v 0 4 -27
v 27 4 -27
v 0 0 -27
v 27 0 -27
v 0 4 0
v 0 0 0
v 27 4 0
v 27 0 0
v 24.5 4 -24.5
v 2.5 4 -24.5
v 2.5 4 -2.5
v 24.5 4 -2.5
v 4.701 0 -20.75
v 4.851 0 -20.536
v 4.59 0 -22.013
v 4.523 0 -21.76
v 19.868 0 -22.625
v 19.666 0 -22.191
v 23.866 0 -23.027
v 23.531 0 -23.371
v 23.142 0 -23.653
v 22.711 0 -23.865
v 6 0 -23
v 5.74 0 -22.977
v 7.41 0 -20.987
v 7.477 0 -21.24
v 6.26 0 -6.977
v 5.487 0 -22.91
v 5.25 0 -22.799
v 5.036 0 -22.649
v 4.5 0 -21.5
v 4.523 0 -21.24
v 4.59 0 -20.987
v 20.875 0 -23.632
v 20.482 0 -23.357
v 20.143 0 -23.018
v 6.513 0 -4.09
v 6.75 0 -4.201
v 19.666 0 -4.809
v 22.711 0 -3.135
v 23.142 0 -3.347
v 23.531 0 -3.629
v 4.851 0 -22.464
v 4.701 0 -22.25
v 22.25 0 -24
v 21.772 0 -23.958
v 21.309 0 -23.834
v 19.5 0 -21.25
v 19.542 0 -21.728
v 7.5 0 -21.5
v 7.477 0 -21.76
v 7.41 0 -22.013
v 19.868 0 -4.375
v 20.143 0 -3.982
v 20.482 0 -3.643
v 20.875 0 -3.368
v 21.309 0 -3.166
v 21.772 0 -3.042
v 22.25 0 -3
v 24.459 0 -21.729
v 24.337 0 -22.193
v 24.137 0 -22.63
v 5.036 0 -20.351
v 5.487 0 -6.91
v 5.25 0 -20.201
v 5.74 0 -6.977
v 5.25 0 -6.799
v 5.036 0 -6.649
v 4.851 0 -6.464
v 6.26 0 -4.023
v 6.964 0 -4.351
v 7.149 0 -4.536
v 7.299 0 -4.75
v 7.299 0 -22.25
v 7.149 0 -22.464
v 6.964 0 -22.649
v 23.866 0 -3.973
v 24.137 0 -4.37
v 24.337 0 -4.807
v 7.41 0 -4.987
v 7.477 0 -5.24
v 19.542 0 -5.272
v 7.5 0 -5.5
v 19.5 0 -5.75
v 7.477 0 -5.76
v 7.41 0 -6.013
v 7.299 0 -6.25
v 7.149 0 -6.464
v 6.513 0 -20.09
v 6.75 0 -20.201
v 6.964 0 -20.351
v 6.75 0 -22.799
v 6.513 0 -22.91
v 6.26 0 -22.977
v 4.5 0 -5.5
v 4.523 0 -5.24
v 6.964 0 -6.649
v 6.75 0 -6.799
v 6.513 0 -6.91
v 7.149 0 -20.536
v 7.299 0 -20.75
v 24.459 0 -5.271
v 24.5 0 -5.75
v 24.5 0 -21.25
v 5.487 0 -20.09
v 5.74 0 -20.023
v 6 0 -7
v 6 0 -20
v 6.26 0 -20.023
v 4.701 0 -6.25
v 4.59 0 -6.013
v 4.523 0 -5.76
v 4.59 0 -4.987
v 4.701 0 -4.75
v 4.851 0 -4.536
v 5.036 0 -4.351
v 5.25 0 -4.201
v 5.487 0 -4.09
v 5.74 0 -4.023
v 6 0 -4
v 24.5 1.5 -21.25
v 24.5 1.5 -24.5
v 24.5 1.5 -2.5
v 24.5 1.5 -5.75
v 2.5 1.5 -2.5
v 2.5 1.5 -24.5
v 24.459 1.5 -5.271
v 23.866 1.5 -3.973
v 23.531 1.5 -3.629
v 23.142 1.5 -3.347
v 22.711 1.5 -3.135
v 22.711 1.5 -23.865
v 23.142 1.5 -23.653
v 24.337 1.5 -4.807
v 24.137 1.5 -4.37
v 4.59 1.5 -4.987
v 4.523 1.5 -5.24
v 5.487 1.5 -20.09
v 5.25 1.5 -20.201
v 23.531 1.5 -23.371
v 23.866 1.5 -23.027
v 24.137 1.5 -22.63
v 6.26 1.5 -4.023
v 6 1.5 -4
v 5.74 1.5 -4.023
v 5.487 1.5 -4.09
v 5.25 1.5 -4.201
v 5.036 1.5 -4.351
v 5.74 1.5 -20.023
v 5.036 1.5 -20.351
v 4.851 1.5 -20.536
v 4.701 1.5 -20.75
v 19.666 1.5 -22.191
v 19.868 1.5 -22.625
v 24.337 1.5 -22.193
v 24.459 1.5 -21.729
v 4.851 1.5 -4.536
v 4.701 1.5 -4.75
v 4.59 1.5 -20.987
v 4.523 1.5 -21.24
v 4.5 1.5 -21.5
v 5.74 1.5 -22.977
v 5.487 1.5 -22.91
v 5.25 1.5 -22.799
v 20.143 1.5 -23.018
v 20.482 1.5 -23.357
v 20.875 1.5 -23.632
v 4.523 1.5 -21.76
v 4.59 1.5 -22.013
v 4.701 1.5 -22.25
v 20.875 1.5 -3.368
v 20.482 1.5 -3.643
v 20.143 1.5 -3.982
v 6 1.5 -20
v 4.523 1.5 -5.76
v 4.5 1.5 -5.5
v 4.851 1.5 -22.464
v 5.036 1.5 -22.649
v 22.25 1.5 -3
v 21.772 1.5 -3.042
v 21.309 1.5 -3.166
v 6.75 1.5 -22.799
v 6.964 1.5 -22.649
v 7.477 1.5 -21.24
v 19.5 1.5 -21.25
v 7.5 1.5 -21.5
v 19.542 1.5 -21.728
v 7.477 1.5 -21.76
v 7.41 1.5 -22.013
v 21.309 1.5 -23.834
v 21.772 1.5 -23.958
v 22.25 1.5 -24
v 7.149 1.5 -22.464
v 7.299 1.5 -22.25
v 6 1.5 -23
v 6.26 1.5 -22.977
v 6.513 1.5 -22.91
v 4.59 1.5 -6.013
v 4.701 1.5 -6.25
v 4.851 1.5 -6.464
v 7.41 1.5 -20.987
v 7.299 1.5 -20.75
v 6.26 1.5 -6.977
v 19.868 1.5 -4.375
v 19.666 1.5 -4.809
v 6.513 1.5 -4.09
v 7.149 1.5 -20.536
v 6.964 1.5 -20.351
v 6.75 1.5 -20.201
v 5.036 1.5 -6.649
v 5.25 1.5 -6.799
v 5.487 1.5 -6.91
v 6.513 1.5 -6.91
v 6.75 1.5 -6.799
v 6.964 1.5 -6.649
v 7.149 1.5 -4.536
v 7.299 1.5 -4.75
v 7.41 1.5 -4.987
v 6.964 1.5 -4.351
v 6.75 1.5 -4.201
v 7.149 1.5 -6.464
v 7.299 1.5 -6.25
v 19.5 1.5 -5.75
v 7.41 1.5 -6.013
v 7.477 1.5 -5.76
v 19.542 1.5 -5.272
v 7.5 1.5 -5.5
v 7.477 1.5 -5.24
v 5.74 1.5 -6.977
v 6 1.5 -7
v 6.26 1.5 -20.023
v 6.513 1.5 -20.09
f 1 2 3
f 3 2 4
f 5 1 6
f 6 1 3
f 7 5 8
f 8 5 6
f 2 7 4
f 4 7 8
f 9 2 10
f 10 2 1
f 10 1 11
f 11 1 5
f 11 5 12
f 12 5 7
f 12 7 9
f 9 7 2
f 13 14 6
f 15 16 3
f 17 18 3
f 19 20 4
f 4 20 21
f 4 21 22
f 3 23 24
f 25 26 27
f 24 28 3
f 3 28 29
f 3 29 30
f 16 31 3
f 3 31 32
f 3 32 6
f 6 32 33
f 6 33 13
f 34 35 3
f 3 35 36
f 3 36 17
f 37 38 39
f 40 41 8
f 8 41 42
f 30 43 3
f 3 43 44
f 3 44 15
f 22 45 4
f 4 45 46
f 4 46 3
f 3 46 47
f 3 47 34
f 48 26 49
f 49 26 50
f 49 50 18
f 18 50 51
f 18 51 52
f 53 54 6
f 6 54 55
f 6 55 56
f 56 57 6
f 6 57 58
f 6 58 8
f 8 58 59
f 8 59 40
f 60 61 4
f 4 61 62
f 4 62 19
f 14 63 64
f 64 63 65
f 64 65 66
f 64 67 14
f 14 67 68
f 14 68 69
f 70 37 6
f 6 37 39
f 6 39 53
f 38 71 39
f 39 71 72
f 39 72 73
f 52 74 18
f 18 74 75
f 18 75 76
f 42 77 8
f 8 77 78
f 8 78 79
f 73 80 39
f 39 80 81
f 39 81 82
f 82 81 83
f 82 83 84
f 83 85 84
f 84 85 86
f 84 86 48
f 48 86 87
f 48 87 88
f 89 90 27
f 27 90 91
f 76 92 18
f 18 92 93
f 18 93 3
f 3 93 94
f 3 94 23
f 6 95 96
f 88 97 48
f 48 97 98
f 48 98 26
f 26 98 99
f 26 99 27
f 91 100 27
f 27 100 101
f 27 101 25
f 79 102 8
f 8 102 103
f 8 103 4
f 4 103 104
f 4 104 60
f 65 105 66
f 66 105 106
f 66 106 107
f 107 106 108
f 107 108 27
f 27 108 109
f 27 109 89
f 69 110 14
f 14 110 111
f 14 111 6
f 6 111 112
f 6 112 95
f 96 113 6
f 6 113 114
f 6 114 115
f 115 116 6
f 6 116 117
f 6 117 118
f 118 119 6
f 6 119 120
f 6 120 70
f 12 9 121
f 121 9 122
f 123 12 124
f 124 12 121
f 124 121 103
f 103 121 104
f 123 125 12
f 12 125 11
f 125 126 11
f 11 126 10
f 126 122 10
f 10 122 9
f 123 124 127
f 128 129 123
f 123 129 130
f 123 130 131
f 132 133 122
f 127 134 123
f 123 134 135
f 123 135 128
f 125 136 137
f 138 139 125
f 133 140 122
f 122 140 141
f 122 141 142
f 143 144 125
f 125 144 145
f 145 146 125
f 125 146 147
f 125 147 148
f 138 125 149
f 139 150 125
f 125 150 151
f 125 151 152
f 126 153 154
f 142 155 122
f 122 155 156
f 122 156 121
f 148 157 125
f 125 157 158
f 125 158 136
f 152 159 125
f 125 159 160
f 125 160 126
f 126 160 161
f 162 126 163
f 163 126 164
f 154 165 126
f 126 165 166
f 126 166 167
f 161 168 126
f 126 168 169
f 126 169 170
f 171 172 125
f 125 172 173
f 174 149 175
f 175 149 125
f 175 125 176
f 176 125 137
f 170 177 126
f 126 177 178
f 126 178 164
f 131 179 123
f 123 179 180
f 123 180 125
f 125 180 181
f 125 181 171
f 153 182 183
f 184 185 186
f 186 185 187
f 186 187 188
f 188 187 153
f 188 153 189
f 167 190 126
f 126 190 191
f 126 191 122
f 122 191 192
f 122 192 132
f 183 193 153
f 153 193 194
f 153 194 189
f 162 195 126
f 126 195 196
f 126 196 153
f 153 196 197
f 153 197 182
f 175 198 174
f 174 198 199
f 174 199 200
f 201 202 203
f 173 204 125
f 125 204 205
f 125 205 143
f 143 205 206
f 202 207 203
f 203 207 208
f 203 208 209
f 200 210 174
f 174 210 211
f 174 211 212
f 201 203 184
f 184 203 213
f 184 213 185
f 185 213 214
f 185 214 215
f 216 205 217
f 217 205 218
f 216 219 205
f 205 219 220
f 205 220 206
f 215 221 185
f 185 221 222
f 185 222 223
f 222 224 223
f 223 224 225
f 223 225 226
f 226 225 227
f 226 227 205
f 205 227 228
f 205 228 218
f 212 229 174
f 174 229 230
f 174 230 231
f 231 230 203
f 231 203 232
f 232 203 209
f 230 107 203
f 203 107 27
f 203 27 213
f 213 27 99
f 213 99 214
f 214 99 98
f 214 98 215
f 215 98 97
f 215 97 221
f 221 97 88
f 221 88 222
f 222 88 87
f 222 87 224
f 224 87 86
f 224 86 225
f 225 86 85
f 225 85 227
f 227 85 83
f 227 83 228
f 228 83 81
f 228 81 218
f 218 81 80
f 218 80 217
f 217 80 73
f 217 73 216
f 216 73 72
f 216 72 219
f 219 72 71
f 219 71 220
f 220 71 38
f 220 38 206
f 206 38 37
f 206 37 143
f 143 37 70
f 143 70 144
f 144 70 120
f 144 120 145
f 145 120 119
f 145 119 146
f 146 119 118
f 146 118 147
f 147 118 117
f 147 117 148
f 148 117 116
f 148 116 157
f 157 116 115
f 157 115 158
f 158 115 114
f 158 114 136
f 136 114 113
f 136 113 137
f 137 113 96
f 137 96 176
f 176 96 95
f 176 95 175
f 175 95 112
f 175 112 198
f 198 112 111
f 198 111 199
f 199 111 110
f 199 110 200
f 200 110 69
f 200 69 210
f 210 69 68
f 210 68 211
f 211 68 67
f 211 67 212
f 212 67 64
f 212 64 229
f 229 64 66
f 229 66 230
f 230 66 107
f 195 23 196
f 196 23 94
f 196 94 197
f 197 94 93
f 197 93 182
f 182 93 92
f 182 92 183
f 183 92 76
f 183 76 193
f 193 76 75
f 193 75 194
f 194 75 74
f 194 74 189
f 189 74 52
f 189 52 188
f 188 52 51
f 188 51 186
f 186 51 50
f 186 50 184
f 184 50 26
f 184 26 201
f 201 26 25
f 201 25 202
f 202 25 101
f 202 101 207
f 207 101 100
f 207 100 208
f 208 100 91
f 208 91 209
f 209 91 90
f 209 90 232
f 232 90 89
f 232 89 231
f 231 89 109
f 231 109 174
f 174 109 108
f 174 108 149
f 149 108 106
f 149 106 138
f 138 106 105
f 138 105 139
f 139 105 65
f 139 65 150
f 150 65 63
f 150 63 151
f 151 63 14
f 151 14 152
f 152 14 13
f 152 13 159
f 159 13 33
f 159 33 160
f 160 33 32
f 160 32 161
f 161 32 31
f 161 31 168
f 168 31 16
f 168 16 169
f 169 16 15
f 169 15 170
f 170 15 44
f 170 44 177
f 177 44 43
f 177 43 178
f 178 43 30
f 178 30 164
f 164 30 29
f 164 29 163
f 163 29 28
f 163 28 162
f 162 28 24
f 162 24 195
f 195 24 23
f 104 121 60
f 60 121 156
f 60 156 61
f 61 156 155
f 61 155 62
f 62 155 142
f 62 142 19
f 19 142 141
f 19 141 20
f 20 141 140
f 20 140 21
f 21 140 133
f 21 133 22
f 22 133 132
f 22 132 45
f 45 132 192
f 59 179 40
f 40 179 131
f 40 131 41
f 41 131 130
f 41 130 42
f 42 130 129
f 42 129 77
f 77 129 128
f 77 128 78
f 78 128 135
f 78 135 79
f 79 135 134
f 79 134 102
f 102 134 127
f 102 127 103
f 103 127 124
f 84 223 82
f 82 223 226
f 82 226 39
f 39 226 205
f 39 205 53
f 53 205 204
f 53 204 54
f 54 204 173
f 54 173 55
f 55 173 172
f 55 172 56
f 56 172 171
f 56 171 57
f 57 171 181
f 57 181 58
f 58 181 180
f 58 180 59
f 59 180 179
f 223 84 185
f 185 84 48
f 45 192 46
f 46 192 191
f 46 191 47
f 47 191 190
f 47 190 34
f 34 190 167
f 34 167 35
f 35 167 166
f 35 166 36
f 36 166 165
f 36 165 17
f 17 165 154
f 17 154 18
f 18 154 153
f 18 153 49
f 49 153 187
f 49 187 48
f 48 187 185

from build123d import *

# Parameters (mm, degrees)
SKETCH2_W           = 27
SKETCH2_H           = 27
BOSS_EXTRUDE1_DEPTH = 4
SKETCH5_W           = 22
SKETCH5_H           = 22
CUT_EXTRUDE2_DEPTH  = 2.5
SKETCH3_R           = 1.5
CUT_EXTRUDE3_DEPTH  = 10
CUT_EXTRUDE4_DEPTH  = 10


with BuildPart() as part:
    # Sketch2 → Boss-Extrude1 (new body)
    with BuildSketch(Plane(origin=(0, 0, 0), x_dir=(1, 0, 0), z_dir=(0, 1, 0))):
        with Locations((13.5, 13.5)):
            Rectangle(SKETCH2_W, SKETCH2_H)
    extrude(amount=BOSS_EXTRUDE1_DEPTH)

    # Sketch5 → Cut-Extrude2 (cut)
    with BuildSketch(Plane(origin=(0, 4, 0), x_dir=(1, 0, 0), z_dir=(0, 1, 0))):
        with Locations((13.5, 13.5)):
            Rectangle(SKETCH5_W, SKETCH5_H)
    extrude(amount=-CUT_EXTRUDE2_DEPTH, mode=Mode.SUBTRACT)

    # Sketch3 → Cut-Extrude3 (cut)
    with BuildSketch(Plane(origin=(0, 0, 0), x_dir=(-1, 0, 0), z_dir=(0, -1, 0))):
        with Locations(Location((-6, 21.5, 0), (0, 0, 90))):
            Circle(SKETCH3_R)
        with Locations(Location((-6, 5.5, 0), (0, 0, 90))):
            Circle(SKETCH3_R)
    extrude(amount=-CUT_EXTRUDE3_DEPTH, mode=Mode.SUBTRACT)

    # Sketch6 → Cut-Extrude4 (cut)
    with BuildSketch(Plane(origin=(0, 1.5, 0), x_dir=(1, 0, 0), z_dir=(0, 1, 0))):
        with BuildLine():
            ThreePointArc((22.25, 24), (20.305456352, 23.194543648), (19.5, 21.25))
            Line((19.5, 21.25), (19.5, 5.75))
            ThreePointArc((19.5, 5.75), (20.305456352, 3.805456352), (22.25, 3))
            ThreePointArc((22.25, 3), (23.865824645, 3.9734162), (24.5, 5.75))
            Line((24.5, 5.75), (24.5, 21.25))
            ThreePointArc((24.5, 21.25), (23.865824645, 23.0265838), (22.25, 24))
        make_face()
    extrude(amount=-CUT_EXTRUDE4_DEPTH, mode=Mode.SUBTRACT)


solid = part.part
